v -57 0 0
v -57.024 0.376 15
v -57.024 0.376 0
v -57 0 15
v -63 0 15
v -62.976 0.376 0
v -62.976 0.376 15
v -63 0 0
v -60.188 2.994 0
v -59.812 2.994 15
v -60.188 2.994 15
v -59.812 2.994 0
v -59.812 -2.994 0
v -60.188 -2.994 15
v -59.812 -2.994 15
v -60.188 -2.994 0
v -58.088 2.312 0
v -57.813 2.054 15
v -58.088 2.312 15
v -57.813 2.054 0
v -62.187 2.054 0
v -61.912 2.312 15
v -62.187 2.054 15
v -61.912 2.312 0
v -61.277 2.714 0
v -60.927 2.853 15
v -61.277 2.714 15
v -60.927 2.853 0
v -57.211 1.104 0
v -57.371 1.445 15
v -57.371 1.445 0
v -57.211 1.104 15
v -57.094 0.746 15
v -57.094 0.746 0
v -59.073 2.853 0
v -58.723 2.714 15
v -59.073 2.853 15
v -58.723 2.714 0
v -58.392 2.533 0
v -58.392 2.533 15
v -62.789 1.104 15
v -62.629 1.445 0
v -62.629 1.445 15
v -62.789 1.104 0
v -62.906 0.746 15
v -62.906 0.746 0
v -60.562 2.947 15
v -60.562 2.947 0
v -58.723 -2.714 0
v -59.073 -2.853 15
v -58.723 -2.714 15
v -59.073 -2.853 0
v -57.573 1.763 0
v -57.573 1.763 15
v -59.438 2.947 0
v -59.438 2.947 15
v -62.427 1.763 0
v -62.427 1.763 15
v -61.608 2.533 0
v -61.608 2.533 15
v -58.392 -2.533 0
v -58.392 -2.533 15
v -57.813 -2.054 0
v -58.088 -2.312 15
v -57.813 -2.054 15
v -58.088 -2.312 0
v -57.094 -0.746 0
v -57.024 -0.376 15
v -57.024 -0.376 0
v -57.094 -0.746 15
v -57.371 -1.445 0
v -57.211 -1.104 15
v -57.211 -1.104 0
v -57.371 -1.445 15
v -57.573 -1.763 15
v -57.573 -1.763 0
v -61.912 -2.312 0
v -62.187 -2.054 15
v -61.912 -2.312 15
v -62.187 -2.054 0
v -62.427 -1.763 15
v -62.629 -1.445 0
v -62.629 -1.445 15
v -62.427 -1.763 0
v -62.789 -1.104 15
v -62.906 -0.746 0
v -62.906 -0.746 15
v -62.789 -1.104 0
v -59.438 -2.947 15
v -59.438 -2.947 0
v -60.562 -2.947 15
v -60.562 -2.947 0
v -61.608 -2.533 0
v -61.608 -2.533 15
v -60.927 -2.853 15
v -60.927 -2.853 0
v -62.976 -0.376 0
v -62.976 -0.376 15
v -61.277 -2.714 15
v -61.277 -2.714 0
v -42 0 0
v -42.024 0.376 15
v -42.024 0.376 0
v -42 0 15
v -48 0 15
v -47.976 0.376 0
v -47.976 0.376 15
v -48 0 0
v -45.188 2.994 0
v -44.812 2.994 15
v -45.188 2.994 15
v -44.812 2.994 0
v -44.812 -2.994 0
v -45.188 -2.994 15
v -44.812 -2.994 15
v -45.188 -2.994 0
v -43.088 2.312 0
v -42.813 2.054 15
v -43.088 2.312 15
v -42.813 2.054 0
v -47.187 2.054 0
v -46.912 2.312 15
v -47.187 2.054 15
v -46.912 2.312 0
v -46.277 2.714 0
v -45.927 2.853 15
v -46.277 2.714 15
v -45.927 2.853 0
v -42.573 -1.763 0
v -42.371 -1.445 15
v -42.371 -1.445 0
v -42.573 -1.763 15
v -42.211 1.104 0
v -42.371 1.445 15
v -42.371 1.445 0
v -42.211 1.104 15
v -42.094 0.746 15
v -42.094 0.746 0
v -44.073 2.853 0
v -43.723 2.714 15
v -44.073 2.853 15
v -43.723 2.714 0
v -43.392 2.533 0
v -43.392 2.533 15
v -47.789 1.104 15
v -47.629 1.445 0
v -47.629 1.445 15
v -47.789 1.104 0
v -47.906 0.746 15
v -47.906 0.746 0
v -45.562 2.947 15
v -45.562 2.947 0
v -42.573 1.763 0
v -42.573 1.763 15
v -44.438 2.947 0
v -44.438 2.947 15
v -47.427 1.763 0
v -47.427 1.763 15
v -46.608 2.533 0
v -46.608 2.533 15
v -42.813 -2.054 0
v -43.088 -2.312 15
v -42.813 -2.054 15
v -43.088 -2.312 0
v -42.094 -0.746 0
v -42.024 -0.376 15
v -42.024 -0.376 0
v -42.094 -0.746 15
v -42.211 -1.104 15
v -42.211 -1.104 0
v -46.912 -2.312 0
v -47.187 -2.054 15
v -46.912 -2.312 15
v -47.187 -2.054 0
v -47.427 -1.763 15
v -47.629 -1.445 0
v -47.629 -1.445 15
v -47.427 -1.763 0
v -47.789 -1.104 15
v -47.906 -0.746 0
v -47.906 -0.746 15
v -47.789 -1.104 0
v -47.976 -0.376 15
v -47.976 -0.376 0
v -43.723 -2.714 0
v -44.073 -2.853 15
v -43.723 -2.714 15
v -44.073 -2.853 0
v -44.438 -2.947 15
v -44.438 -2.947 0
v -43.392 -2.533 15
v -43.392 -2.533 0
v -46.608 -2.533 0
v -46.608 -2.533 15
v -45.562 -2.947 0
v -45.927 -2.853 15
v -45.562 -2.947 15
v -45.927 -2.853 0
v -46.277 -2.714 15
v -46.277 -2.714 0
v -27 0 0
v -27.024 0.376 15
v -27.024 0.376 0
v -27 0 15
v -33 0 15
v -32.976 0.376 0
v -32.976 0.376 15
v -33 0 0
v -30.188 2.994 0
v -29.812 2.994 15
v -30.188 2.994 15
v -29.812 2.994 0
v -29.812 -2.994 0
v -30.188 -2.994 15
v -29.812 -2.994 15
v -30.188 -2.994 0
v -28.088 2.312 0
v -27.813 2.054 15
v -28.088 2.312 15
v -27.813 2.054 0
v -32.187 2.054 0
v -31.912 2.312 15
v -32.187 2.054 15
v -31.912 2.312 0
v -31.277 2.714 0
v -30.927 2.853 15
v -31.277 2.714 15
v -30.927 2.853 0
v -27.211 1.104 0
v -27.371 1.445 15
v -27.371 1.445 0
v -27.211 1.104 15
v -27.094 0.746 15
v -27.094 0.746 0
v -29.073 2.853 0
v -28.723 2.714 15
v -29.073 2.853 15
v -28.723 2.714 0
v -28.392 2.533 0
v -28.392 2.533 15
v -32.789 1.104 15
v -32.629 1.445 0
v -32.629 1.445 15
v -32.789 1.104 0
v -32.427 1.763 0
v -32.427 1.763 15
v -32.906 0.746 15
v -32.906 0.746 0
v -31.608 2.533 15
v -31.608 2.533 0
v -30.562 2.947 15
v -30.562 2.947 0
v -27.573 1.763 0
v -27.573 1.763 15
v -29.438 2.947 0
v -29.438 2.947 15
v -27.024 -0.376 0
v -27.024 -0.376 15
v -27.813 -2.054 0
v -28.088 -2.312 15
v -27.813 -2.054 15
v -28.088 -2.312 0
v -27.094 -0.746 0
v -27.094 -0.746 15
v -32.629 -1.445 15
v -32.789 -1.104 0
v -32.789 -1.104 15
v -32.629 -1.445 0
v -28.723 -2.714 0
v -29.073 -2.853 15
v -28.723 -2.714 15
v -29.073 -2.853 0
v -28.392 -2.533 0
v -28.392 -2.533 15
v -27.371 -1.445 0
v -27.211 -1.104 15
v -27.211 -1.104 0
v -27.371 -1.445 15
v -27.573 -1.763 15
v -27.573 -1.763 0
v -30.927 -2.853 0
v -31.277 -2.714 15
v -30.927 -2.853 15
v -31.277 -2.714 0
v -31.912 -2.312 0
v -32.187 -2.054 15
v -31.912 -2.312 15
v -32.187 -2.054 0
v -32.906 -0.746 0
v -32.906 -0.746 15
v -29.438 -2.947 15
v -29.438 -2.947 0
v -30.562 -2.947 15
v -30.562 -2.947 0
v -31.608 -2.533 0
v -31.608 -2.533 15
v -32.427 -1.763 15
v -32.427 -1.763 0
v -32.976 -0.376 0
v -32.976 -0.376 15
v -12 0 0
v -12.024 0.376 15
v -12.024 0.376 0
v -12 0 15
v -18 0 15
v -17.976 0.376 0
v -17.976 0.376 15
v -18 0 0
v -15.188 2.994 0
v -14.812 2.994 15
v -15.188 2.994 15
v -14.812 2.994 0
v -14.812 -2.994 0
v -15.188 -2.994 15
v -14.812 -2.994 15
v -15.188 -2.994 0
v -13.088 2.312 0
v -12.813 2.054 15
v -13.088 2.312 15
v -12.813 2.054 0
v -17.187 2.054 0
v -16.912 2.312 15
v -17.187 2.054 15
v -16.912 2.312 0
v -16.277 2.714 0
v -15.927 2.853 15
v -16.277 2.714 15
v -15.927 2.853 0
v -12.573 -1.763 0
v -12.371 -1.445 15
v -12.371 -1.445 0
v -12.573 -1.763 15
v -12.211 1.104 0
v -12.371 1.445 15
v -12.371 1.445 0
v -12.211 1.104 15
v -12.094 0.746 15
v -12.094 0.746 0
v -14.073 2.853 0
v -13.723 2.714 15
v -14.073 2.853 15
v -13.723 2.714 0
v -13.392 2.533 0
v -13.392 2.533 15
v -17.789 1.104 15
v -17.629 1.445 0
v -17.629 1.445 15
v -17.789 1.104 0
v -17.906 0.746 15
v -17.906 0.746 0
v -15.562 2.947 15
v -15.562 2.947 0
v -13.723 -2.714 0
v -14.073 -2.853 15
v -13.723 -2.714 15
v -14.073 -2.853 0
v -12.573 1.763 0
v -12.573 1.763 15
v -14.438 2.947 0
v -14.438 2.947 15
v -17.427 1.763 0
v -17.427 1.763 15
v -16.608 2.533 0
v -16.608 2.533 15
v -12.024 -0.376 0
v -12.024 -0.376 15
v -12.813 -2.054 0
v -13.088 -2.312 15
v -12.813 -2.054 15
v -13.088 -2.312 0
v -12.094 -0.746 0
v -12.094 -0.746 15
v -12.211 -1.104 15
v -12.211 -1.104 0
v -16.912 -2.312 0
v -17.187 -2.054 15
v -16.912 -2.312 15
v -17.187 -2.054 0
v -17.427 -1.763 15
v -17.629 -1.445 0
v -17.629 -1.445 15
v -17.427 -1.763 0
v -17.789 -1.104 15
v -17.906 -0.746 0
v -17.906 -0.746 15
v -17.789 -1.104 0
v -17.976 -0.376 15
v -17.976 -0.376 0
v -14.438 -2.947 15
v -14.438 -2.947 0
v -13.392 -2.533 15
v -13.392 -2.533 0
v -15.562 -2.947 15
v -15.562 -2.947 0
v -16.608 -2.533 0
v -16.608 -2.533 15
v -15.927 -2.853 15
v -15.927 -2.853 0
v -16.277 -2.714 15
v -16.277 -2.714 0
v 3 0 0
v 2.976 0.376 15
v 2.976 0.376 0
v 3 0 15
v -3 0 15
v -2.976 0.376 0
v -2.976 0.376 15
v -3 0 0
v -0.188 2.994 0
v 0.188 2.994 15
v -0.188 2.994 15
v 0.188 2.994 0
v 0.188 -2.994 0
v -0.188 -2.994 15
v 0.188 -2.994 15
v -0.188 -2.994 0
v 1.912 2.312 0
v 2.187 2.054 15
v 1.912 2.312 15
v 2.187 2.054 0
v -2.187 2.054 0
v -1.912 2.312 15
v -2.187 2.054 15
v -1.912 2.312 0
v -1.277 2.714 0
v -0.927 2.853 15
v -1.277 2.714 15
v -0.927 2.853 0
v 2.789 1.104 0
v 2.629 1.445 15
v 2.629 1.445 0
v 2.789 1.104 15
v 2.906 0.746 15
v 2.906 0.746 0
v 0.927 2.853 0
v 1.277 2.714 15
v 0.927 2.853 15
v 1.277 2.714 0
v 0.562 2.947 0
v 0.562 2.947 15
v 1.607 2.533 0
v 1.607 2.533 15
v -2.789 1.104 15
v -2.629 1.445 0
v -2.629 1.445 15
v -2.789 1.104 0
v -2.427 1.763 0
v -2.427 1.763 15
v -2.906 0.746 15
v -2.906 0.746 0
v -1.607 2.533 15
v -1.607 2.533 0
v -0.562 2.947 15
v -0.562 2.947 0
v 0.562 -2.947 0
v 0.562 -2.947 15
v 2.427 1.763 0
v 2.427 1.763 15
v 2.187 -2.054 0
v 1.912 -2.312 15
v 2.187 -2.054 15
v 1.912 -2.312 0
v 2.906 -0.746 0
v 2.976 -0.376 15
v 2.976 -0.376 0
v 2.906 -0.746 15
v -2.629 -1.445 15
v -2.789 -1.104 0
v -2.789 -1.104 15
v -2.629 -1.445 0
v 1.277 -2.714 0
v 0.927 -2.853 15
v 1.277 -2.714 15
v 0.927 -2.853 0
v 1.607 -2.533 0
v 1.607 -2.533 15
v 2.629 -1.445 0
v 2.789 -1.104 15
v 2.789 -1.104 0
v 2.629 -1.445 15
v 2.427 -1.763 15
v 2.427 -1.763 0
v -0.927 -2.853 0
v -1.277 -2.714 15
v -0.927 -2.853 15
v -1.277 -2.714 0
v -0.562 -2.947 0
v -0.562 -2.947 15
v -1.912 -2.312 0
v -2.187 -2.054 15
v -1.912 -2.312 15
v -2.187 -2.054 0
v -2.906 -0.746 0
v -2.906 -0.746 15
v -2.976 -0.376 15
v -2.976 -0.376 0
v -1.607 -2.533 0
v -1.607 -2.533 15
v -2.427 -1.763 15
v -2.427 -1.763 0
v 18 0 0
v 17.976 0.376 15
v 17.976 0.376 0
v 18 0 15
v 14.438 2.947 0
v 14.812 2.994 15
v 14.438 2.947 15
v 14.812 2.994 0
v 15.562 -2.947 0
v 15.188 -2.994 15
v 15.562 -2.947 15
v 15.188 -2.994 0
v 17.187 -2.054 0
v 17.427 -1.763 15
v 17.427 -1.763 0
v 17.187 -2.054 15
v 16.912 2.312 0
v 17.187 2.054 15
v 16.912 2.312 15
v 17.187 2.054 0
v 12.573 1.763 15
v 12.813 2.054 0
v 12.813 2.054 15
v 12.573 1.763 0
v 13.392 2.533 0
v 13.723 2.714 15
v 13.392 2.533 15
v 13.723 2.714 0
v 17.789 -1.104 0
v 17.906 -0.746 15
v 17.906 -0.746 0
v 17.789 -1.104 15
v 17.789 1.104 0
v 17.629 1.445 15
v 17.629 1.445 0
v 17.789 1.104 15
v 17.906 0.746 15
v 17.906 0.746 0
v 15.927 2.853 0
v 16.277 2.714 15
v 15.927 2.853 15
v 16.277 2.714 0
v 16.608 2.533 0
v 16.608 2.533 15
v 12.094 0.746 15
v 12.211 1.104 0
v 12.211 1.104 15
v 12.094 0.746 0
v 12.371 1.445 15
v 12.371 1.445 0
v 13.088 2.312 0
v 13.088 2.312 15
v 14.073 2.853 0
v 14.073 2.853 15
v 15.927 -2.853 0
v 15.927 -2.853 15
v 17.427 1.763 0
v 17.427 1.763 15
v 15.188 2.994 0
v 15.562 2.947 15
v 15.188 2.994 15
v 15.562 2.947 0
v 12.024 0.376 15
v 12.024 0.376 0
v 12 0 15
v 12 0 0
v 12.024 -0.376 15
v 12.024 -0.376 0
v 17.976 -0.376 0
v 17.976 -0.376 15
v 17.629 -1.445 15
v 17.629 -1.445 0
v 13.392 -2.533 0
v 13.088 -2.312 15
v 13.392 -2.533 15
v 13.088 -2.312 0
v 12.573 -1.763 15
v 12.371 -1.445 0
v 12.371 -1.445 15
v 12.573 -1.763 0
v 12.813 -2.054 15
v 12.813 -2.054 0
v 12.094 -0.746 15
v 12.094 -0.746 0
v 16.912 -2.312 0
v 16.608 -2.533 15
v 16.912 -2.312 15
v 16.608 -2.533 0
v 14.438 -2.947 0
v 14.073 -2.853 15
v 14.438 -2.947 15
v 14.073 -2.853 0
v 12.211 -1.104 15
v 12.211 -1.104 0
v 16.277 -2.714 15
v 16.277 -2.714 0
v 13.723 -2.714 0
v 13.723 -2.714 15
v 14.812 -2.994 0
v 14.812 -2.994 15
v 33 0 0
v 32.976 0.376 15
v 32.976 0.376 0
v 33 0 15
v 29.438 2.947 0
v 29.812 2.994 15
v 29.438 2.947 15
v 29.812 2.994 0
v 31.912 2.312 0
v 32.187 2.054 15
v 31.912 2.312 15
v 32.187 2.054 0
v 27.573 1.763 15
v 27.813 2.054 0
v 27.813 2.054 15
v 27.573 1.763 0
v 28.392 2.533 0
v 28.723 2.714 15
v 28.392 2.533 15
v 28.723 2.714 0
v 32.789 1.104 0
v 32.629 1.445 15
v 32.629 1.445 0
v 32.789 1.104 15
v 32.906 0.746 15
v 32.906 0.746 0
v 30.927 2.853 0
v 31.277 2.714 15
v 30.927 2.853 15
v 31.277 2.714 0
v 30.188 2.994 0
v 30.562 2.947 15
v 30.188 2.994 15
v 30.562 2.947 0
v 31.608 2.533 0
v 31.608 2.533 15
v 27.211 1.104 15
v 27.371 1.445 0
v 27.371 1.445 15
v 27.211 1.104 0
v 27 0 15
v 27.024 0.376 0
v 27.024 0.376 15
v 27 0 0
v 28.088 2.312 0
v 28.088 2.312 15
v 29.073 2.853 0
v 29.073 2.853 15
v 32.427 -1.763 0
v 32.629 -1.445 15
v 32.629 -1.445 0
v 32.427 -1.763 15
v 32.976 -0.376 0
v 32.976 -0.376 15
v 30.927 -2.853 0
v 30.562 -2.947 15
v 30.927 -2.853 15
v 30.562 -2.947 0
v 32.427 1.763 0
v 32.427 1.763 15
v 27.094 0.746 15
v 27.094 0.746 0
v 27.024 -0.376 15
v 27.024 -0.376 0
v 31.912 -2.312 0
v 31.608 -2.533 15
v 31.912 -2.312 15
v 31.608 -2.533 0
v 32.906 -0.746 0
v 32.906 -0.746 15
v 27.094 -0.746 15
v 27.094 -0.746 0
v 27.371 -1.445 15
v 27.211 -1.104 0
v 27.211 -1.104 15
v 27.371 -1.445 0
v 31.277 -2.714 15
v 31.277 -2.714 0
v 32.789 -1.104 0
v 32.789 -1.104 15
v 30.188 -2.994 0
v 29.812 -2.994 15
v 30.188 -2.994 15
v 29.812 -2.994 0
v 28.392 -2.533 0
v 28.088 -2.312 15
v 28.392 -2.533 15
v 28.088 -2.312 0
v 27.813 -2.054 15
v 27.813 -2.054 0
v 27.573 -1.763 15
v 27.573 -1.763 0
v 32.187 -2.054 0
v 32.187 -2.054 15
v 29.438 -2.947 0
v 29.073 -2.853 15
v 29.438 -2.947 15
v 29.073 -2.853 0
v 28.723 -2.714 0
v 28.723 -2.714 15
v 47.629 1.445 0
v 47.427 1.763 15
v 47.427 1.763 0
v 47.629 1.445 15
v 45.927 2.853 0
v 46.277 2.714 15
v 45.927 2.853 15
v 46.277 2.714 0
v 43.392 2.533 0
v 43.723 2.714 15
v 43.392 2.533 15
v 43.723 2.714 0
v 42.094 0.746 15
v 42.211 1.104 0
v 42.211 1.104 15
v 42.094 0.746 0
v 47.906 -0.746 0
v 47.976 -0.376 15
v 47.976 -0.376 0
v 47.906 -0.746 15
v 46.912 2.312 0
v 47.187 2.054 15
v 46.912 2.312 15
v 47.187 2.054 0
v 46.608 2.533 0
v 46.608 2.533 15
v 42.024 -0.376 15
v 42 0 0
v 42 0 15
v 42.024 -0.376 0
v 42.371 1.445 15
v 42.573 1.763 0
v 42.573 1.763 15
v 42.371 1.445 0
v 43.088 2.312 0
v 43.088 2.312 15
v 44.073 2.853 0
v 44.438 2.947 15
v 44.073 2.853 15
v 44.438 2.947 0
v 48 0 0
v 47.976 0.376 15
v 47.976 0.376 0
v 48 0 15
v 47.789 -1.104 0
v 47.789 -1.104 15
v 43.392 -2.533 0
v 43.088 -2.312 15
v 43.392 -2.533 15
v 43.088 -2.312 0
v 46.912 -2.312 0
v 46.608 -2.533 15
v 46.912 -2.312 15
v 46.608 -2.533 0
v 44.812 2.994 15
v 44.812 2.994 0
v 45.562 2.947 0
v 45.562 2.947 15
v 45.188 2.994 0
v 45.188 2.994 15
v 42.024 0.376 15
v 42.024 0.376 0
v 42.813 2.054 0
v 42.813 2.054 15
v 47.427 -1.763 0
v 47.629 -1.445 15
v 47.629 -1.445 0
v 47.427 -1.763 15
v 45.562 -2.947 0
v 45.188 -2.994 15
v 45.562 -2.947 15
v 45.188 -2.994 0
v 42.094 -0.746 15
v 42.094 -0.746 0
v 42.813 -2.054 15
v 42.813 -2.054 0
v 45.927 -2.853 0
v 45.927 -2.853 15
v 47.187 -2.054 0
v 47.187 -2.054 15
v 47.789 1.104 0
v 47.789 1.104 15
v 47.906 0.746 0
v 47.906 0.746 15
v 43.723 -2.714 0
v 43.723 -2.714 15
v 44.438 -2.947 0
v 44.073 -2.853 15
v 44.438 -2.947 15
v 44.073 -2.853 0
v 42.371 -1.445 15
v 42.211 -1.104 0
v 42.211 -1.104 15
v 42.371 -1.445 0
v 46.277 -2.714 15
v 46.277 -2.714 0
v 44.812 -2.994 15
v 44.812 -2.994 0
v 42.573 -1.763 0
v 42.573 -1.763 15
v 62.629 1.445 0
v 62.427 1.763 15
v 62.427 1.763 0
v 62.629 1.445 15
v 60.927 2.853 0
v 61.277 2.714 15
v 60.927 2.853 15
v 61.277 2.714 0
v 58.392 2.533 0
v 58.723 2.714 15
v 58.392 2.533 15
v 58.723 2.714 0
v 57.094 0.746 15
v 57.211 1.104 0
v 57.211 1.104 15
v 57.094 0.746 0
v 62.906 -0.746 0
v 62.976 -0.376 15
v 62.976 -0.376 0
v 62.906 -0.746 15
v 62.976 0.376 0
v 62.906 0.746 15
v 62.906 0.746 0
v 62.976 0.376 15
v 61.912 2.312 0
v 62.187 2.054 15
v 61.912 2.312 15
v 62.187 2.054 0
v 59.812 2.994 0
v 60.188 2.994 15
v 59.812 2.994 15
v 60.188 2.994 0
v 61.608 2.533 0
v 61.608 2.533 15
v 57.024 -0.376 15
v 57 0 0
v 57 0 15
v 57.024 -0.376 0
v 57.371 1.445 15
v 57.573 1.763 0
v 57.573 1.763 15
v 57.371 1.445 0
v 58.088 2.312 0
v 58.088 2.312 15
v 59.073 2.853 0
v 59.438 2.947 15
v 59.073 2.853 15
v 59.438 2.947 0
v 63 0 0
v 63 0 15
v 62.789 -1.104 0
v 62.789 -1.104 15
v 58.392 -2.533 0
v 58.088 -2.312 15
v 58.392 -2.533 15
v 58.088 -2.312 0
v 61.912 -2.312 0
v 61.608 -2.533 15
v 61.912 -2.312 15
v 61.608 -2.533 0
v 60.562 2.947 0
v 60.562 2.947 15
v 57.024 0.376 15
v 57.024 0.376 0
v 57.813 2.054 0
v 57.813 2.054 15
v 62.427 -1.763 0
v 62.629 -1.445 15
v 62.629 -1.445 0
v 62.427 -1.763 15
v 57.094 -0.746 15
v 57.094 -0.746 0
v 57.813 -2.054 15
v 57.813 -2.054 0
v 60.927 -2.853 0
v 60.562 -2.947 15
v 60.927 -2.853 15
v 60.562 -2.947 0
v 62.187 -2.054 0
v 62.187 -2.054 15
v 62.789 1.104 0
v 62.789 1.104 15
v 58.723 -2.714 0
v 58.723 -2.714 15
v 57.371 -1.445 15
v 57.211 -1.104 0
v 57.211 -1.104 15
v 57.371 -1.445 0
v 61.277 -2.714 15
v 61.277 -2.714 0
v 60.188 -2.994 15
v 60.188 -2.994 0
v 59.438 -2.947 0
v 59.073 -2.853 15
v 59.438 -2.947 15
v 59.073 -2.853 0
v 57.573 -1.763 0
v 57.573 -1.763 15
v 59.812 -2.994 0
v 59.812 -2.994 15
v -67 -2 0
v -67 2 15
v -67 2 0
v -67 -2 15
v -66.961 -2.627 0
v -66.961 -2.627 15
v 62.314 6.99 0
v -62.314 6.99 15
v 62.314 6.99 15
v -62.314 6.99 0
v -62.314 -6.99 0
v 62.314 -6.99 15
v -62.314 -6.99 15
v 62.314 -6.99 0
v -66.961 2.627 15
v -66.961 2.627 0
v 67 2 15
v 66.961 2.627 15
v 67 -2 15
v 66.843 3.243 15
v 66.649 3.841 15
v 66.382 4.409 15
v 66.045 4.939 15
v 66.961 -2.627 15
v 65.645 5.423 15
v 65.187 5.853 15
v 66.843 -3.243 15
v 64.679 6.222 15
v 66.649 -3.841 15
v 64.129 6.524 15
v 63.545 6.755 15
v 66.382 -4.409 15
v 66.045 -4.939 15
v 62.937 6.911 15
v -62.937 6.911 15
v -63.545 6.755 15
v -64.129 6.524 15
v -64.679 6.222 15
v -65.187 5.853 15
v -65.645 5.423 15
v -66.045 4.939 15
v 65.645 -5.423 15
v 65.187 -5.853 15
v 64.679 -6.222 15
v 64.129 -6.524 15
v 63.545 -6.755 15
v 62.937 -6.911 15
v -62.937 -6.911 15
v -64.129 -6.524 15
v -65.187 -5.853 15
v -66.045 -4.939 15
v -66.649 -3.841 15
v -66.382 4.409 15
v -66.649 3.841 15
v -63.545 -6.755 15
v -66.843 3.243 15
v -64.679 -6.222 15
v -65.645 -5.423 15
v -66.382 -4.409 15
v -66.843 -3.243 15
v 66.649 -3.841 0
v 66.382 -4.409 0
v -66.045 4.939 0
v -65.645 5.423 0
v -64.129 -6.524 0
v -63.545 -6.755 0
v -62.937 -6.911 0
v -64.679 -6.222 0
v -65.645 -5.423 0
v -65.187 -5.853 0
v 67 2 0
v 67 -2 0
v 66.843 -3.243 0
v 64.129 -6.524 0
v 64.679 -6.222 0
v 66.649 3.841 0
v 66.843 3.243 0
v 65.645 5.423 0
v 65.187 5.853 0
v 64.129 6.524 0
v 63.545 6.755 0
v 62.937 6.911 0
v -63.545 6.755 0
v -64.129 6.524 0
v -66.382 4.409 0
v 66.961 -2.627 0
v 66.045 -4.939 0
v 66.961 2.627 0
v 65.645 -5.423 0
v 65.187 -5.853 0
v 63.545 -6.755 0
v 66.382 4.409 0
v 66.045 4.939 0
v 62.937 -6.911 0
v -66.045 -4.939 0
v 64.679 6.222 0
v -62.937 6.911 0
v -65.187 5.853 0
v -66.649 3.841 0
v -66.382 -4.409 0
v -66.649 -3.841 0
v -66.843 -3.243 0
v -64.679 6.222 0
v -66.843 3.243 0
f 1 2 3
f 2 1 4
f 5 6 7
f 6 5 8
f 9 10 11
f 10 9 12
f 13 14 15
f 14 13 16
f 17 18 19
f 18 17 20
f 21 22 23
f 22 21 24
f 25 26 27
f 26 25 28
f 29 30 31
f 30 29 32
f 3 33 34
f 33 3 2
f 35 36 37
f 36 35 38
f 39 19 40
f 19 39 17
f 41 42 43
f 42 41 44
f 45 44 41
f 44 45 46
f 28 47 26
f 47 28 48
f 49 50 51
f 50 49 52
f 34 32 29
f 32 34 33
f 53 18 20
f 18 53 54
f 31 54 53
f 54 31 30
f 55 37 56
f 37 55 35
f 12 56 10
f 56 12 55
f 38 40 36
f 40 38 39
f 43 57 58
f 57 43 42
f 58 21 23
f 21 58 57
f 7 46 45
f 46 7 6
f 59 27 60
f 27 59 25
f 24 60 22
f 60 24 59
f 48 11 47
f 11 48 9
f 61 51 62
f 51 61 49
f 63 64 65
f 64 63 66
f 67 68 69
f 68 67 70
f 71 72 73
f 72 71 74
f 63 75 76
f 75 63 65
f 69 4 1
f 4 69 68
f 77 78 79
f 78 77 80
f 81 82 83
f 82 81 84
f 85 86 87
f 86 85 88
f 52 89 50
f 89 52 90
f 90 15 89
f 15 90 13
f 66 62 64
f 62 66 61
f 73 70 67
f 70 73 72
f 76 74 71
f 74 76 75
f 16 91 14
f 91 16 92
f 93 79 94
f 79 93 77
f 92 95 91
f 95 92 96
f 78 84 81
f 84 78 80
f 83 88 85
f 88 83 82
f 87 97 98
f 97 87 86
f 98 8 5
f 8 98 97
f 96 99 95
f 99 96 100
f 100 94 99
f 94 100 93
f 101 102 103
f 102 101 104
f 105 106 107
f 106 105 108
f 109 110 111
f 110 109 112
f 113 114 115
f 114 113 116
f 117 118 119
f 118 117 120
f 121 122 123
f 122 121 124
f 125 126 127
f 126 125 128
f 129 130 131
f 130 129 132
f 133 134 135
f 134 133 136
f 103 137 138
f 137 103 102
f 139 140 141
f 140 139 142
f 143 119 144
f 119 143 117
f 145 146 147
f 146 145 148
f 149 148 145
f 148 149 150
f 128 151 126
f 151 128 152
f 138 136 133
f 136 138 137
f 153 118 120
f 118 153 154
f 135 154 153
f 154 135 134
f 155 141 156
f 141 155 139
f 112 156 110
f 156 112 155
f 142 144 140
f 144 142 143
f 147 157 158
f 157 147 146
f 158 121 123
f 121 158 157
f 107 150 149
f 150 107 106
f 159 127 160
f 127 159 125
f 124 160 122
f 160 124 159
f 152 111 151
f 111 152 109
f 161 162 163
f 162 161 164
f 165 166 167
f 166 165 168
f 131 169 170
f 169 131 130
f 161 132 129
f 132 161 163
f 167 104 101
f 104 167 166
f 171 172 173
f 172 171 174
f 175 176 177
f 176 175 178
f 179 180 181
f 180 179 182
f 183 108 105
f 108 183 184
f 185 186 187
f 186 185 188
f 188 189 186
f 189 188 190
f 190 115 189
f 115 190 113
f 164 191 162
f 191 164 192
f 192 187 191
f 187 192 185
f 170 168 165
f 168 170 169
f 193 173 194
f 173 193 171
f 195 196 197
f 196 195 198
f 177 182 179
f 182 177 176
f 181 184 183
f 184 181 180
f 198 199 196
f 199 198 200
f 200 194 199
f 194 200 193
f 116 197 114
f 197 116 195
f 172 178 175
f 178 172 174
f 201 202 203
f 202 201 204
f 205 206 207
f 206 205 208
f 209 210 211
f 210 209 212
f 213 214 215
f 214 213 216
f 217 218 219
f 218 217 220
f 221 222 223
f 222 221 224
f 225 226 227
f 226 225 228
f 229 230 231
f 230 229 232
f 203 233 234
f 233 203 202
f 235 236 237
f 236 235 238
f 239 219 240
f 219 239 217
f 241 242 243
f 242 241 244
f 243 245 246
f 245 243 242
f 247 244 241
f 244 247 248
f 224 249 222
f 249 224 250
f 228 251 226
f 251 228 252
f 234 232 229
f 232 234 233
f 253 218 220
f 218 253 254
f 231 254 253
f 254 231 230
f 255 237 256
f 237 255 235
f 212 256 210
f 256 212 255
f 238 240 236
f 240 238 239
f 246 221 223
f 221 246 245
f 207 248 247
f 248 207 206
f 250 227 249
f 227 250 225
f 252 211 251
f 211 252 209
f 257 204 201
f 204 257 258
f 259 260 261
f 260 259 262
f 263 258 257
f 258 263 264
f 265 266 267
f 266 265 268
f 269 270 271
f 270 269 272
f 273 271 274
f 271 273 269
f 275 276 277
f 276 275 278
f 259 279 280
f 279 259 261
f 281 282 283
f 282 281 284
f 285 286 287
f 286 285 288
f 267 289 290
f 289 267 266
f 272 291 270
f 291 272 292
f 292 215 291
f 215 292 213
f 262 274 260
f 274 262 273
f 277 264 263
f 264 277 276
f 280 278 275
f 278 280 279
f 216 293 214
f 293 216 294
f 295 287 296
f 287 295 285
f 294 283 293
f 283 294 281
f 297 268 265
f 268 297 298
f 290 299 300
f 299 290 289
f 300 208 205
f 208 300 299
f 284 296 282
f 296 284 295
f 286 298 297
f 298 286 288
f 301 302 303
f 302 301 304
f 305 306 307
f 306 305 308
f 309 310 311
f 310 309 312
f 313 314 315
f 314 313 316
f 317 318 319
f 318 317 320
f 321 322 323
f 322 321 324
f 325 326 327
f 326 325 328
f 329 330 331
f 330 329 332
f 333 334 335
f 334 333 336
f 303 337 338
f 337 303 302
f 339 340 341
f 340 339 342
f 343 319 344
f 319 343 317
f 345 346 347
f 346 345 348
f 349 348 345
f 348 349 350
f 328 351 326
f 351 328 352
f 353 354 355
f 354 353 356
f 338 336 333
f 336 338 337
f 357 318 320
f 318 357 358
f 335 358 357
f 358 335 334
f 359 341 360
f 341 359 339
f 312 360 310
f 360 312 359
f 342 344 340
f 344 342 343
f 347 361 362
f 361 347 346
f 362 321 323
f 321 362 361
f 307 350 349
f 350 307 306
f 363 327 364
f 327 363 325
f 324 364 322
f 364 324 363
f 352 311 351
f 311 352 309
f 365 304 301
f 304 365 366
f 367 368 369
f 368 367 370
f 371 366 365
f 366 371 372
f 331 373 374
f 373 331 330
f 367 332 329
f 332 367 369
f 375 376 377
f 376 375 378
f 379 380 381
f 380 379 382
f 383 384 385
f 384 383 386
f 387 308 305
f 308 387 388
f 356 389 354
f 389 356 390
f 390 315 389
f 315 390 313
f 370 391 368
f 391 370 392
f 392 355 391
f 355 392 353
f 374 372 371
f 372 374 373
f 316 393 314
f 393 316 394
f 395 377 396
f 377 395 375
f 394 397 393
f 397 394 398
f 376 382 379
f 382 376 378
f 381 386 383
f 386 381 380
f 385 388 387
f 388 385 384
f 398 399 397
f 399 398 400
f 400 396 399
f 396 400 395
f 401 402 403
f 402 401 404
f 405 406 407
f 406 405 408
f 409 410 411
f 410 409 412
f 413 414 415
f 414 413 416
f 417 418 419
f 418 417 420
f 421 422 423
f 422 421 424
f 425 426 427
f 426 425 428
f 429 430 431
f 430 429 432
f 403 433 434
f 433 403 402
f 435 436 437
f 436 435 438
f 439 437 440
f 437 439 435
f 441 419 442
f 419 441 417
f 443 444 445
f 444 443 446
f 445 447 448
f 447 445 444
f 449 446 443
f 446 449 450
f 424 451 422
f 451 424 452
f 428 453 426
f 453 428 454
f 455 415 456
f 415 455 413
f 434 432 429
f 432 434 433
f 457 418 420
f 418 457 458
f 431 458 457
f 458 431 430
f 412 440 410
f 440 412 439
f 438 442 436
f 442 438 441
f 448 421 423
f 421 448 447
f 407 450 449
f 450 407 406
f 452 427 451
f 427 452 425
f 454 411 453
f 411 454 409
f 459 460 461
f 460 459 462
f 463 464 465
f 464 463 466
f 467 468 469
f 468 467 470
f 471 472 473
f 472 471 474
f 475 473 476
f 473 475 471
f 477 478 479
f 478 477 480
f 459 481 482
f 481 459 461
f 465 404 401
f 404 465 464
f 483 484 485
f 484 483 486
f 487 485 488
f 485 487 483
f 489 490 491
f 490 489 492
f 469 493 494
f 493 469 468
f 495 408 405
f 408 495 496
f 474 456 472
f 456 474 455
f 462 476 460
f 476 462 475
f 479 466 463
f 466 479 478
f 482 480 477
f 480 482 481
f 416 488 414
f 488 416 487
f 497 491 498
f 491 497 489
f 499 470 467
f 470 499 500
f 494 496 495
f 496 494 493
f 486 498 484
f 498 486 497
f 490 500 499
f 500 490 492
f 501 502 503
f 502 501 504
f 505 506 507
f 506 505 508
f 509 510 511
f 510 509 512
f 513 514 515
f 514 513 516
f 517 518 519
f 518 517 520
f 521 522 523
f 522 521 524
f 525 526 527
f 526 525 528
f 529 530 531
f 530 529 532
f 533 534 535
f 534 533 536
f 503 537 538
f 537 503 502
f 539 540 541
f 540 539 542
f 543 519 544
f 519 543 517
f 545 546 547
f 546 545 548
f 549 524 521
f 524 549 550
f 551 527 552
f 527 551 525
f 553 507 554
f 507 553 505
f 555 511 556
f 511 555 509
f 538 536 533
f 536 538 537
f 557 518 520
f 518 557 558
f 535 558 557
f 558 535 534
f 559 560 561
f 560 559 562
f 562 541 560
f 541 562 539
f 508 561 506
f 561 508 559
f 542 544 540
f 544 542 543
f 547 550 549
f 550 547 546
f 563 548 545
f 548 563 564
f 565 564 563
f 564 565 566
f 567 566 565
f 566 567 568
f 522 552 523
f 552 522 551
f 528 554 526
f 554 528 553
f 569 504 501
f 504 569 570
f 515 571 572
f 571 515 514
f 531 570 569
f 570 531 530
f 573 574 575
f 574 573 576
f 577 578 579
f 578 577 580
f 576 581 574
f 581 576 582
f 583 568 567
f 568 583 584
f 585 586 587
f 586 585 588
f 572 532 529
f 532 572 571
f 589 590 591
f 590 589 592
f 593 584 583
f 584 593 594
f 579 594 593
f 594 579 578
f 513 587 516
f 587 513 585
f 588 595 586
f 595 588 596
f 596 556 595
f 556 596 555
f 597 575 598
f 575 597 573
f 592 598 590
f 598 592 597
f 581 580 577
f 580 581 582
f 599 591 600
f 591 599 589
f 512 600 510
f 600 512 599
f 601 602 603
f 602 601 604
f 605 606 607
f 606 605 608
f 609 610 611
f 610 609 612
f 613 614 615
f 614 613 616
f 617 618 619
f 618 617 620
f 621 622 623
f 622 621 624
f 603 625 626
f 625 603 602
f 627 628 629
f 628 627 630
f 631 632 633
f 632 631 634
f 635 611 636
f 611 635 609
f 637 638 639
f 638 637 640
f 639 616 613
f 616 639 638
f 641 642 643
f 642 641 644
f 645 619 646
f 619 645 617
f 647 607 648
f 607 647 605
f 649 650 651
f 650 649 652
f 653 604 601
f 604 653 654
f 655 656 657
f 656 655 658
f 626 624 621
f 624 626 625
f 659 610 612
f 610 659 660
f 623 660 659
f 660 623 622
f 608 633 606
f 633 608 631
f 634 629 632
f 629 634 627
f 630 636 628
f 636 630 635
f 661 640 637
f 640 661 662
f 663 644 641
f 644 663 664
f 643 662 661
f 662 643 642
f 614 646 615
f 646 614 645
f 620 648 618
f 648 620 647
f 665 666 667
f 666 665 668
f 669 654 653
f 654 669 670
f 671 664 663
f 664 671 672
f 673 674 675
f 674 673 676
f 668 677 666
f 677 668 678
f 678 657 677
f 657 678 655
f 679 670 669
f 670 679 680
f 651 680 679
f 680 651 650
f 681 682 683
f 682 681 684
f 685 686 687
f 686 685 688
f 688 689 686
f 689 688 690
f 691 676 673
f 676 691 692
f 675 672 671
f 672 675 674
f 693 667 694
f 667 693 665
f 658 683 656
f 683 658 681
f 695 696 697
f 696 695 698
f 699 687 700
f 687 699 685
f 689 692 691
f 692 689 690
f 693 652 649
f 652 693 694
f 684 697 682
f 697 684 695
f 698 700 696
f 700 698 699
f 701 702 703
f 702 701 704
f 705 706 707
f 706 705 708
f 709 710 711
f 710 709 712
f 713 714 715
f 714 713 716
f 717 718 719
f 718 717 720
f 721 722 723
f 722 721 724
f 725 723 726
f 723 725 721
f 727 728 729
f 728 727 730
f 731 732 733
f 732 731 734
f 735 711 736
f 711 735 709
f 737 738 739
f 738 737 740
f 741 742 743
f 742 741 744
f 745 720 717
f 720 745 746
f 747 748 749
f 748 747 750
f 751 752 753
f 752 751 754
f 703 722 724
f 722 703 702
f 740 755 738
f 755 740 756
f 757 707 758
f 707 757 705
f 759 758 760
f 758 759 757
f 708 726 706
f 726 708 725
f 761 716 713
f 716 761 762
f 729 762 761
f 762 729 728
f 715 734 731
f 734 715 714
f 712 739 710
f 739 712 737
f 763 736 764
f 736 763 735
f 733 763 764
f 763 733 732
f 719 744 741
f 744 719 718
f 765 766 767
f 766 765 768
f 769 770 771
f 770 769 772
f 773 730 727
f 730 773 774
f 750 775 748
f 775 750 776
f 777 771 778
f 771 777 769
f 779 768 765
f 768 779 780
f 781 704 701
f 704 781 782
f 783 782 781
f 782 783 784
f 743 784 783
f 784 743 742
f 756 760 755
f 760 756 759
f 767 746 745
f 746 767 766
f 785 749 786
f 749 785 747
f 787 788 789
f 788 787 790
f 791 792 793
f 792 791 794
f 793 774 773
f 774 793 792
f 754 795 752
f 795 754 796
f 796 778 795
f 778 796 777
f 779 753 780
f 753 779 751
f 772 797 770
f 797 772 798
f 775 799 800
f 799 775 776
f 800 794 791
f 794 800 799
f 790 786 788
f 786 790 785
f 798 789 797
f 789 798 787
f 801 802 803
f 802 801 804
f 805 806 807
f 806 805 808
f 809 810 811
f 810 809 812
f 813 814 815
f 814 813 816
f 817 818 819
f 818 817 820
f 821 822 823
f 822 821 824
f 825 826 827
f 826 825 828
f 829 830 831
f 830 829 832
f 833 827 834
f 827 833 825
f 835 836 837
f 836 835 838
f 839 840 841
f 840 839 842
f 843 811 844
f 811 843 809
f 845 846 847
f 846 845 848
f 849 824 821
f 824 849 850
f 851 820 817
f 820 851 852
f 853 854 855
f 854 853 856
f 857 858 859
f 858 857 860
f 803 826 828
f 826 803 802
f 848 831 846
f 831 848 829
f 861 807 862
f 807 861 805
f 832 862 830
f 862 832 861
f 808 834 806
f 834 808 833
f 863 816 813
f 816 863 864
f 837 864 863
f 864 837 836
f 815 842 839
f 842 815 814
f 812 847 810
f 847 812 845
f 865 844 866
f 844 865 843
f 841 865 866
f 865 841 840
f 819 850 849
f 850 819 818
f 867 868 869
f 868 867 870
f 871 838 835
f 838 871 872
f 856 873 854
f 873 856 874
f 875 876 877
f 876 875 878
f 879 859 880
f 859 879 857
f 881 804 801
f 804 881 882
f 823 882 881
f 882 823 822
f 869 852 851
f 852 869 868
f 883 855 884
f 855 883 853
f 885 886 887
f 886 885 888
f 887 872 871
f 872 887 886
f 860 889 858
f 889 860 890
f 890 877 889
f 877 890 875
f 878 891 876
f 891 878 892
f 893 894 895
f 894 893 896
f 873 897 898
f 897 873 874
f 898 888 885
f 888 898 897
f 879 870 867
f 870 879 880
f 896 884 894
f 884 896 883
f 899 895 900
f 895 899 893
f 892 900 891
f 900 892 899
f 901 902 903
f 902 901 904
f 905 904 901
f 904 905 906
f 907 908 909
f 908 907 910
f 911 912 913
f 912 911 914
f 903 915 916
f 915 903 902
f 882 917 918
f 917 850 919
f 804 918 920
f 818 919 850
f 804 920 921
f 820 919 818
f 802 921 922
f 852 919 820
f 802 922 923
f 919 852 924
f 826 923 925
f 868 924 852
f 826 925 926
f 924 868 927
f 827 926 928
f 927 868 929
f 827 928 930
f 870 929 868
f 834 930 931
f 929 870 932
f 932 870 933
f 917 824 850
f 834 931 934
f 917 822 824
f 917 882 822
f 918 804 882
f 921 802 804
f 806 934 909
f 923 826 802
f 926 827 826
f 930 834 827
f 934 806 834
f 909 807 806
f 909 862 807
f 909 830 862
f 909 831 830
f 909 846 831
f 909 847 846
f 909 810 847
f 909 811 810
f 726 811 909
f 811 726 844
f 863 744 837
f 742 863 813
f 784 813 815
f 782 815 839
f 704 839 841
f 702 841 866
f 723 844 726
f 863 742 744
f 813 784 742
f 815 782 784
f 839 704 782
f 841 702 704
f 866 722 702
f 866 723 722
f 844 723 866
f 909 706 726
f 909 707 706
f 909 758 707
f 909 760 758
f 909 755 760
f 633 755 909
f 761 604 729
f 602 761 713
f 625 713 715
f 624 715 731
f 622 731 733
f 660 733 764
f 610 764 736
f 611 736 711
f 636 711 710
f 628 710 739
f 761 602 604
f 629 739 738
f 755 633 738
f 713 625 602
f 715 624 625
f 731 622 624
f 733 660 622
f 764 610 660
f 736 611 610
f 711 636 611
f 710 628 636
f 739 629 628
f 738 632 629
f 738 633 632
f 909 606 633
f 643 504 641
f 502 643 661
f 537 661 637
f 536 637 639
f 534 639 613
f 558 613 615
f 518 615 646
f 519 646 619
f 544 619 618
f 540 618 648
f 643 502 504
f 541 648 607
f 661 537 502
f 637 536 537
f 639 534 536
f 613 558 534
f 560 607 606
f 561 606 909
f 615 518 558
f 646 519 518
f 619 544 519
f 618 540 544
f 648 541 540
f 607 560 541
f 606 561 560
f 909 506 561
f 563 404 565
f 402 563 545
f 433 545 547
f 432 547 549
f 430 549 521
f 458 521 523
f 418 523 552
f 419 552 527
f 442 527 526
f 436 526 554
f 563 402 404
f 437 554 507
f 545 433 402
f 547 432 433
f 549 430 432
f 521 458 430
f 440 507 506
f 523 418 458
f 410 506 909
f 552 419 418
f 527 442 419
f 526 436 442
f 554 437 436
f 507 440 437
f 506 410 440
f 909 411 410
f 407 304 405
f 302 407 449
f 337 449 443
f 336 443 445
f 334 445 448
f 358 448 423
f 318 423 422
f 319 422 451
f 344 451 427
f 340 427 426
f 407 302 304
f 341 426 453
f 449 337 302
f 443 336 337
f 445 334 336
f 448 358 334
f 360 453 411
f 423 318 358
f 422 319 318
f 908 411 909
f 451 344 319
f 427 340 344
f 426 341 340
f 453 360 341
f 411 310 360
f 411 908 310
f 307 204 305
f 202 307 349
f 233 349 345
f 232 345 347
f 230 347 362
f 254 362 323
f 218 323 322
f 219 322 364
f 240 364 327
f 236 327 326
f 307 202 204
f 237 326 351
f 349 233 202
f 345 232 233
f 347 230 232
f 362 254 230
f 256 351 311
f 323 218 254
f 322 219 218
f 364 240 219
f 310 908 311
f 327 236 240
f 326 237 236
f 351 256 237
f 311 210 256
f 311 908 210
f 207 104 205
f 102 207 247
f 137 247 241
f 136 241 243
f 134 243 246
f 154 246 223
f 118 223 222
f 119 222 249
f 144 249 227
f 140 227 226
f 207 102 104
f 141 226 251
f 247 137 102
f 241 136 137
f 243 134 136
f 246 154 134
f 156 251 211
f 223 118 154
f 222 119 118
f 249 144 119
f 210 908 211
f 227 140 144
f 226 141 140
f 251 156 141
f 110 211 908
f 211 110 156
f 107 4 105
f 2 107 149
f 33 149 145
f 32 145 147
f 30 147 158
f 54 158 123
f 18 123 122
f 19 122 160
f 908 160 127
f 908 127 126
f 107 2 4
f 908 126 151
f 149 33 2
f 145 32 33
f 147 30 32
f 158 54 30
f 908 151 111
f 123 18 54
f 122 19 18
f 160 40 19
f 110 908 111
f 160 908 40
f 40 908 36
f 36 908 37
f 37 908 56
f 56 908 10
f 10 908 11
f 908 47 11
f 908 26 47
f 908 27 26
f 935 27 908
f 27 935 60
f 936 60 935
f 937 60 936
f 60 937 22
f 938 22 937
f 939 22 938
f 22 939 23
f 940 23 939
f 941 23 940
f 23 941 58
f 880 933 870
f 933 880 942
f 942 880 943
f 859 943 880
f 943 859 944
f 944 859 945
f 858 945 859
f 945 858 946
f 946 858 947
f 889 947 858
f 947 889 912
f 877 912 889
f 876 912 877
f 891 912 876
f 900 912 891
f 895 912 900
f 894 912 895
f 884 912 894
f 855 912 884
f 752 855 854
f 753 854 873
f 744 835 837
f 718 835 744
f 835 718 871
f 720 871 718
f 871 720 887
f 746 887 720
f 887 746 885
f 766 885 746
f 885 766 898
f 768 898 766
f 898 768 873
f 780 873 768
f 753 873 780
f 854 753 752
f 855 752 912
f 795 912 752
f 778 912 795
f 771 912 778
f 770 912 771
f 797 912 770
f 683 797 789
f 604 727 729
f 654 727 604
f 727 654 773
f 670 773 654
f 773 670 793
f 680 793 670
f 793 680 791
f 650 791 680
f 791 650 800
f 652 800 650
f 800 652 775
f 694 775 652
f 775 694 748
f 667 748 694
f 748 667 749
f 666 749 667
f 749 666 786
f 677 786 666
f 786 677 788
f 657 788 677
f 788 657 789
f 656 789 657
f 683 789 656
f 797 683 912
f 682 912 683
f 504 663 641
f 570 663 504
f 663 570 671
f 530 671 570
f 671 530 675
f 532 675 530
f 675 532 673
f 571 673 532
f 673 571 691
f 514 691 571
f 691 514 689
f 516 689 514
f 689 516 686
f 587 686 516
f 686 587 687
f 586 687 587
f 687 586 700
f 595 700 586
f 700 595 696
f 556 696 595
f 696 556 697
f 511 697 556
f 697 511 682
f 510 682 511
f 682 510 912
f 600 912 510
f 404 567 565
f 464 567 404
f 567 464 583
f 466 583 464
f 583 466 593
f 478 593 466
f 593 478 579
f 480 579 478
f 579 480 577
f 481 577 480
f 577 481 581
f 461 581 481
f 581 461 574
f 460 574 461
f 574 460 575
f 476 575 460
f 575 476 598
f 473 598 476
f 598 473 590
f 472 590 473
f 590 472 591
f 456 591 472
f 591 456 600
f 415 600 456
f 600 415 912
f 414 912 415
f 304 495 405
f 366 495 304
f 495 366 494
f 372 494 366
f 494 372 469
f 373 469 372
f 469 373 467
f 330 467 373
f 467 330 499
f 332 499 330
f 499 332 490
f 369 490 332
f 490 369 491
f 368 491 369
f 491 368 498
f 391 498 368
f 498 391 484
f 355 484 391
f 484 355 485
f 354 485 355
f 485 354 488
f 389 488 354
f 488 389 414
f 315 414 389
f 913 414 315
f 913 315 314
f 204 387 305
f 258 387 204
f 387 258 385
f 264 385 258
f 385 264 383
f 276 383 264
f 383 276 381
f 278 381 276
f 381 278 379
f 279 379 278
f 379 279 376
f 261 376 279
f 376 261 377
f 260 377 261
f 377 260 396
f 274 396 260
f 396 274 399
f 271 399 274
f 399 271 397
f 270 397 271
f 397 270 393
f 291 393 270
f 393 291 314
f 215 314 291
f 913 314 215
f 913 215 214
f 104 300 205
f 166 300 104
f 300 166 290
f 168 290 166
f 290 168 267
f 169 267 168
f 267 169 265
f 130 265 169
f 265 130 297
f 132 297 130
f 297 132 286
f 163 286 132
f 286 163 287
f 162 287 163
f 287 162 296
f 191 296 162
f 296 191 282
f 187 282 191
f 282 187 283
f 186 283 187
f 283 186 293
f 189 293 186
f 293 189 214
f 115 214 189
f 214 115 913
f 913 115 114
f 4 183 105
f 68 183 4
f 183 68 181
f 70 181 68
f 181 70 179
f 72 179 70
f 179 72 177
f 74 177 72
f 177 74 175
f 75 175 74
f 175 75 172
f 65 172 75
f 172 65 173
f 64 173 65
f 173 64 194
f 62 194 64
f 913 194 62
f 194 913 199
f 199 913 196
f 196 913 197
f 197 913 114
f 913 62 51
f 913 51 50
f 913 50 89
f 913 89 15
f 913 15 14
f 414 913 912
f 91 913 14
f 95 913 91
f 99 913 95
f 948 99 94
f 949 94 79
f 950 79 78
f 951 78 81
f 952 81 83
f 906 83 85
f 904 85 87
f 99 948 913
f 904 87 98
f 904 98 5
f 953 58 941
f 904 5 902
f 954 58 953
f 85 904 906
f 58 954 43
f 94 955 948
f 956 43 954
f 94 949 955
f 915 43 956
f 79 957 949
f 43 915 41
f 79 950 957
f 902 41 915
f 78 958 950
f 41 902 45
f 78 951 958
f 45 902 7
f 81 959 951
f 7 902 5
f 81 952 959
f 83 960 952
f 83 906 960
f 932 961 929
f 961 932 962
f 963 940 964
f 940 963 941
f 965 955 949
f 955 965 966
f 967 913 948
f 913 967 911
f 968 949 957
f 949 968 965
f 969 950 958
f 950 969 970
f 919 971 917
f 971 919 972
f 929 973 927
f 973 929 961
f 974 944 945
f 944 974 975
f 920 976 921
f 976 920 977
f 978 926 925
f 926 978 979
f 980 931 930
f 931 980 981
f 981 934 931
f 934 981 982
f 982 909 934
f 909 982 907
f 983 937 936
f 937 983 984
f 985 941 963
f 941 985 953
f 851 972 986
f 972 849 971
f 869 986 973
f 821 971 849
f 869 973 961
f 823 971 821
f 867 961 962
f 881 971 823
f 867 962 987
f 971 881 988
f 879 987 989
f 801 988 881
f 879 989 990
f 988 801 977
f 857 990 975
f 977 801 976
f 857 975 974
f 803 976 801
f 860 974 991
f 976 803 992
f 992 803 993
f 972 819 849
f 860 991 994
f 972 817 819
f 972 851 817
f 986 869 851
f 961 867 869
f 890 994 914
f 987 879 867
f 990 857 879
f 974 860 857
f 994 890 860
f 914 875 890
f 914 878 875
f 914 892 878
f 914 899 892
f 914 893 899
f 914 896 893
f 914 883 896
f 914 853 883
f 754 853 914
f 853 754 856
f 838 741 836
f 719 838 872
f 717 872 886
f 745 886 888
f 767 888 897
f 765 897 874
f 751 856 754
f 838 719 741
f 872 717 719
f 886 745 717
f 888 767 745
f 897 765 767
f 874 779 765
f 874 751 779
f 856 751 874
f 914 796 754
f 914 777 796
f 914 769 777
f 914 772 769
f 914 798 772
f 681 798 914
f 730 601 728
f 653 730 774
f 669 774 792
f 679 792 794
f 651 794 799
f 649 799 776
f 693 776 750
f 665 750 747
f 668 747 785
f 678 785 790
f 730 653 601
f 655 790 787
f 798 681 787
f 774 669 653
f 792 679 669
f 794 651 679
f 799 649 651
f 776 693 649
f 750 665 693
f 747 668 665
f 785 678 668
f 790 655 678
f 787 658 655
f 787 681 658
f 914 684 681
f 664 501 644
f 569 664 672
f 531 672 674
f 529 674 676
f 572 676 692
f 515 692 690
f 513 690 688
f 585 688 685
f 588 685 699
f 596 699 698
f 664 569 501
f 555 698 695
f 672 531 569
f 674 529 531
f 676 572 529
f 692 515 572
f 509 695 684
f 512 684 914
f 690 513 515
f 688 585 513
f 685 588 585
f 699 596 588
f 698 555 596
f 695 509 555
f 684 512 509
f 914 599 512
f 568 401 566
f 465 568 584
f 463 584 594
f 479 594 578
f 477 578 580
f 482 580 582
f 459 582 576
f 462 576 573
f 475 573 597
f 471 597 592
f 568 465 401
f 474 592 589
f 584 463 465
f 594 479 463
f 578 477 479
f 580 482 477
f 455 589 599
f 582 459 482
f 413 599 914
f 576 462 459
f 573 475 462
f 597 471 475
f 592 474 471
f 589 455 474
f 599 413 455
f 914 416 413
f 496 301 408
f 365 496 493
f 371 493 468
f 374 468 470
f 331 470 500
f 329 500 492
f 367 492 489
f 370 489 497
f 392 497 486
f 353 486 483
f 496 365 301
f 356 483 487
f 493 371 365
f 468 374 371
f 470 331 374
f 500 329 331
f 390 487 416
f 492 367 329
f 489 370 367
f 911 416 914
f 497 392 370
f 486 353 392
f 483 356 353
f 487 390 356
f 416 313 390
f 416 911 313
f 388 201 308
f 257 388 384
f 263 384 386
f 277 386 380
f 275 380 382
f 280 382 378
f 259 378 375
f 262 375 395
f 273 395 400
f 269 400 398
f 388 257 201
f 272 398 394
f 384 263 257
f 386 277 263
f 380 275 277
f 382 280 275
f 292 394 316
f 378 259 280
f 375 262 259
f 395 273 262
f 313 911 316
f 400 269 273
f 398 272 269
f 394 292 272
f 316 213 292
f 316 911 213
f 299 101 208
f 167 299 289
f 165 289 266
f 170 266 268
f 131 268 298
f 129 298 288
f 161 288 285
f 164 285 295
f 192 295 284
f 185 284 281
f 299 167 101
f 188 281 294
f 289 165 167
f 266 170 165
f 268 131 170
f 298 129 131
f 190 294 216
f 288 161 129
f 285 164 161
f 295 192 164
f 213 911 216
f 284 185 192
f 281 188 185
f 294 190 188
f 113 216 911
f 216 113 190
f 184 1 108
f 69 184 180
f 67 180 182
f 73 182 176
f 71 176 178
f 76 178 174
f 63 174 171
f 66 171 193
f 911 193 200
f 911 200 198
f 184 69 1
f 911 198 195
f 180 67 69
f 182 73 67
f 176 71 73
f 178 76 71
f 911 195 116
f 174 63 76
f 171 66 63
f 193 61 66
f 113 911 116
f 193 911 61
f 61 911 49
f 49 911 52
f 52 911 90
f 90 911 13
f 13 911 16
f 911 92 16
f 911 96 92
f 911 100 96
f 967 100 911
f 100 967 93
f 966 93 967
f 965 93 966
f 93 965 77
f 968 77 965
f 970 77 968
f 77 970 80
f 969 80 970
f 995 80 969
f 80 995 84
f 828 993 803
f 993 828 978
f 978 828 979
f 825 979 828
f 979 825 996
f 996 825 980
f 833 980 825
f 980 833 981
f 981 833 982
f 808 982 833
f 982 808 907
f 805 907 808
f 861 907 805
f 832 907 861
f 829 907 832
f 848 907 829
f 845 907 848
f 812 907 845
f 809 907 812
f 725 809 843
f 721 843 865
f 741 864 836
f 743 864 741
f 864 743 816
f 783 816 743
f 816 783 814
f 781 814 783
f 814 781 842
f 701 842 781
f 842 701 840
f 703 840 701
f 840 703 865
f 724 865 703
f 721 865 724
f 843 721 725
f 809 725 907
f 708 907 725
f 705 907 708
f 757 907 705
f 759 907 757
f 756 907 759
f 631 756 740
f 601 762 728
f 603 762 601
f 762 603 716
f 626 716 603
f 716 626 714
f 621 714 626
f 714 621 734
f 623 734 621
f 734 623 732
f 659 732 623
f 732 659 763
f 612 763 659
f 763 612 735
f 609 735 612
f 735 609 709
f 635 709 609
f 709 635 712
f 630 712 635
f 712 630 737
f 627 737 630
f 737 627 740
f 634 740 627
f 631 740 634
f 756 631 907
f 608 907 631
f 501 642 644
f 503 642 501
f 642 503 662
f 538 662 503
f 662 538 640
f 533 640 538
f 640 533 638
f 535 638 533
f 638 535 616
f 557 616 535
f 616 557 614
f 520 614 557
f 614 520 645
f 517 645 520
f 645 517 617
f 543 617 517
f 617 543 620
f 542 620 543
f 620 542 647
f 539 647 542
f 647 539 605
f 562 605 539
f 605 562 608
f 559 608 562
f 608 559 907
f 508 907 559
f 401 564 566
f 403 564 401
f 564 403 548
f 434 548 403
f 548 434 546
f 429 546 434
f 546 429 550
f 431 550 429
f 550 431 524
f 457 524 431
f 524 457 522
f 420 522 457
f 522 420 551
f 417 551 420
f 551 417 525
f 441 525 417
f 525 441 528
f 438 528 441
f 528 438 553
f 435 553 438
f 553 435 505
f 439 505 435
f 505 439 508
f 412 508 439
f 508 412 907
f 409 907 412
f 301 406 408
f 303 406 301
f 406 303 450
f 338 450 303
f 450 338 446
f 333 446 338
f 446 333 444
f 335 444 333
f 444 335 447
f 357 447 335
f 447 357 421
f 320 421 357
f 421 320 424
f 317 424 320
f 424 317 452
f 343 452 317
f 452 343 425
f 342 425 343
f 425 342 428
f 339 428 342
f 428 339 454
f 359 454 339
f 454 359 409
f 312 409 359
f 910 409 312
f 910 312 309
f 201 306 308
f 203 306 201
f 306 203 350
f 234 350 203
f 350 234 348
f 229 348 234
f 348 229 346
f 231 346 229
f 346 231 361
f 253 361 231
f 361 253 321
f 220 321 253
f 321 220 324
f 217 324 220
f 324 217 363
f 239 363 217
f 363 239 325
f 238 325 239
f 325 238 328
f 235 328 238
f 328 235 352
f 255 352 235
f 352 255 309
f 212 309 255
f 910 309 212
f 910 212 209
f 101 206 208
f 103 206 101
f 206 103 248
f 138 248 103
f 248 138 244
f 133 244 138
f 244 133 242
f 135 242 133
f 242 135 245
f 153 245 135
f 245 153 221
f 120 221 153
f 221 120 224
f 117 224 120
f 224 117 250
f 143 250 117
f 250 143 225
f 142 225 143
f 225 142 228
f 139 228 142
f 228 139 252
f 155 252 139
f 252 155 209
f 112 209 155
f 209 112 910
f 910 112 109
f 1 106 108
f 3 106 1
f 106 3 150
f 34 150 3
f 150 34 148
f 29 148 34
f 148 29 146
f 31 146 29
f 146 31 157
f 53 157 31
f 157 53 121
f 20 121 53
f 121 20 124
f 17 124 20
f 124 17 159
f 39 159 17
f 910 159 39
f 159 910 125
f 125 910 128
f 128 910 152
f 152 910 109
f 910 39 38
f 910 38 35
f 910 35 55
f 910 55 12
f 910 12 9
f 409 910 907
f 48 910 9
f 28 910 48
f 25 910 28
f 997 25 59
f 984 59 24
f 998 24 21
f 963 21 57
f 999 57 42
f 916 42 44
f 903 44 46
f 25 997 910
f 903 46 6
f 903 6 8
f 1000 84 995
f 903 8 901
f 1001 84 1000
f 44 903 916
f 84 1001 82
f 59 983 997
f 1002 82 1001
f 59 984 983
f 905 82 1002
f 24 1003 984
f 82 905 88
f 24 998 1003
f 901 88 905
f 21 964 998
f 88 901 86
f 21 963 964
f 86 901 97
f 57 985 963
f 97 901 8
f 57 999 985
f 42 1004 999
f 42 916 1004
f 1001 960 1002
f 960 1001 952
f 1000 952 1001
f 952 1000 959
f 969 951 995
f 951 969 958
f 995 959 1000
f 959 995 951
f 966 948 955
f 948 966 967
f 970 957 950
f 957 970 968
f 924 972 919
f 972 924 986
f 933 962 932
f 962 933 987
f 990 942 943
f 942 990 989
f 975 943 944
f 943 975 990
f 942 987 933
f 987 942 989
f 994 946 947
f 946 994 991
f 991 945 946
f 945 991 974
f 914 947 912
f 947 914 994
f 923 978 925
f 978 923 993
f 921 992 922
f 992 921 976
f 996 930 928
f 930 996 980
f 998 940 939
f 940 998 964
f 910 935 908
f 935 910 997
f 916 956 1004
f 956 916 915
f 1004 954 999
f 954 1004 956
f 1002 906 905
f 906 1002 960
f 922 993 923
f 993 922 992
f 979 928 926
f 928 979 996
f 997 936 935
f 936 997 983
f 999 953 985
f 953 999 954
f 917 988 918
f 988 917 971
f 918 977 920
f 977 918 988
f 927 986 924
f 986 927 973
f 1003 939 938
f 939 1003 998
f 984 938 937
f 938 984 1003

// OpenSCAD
$fn = 50;


difference() {
	union() {
		hull() {
			translate(v = [-62.0000000000, 2.0000000000, 0]) {
				cylinder(h = 15, r = 5);
			}
			translate(v = [62.0000000000, 2.0000000000, 0]) {
				cylinder(h = 15, r = 5);
			}
			translate(v = [-62.0000000000, -2.0000000000, 0]) {
				cylinder(h = 15, r = 5);
			}
			translate(v = [62.0000000000, -2.0000000000, 0]) {
				cylinder(h = 15, r = 5);
			}
		}
	}
	union() {
		translate(v = [-60.0000000000, 0.0000000000, 0]) {
			translate(v = [0, 0, -100]) {
				cylinder(h = 200, r = 3.0000000000);
			}
		}
		translate(v = [-45.0000000000, 0.0000000000, 0]) {
			translate(v = [0, 0, -100]) {
				cylinder(h = 200, r = 3.0000000000);
			}
		}
		translate(v = [-30.0000000000, 0.0000000000, 0]) {
			translate(v = [0, 0, -100]) {
				cylinder(h = 200, r = 3.0000000000);
			}
		}
		translate(v = [-15.0000000000, 0.0000000000, 0]) {
			translate(v = [0, 0, -100]) {
				cylinder(h = 200, r = 3.0000000000);
			}
		}
		translate(v = [0, 0, -100]) {
			cylinder(h = 200, r = 3.0000000000);
		}
		translate(v = [15.0000000000, 0.0000000000, 0]) {
			translate(v = [0, 0, -100]) {
				cylinder(h = 200, r = 3.0000000000);
			}
		}
		translate(v = [30.0000000000, 0.0000000000, 0]) {
			translate(v = [0, 0, -100]) {
				cylinder(h = 200, r = 3.0000000000);
			}
		}
		translate(v = [45.0000000000, 0.0000000000, 0]) {
			translate(v = [0, 0, -100]) {
				cylinder(h = 200, r = 3.0000000000);
			}
		}
		translate(v = [60.0000000000, 0.0000000000, 0]) {
			translate(v = [0, 0, -100]) {
				cylinder(h = 200, r = 3.0000000000);
			}
		}
	}
}
